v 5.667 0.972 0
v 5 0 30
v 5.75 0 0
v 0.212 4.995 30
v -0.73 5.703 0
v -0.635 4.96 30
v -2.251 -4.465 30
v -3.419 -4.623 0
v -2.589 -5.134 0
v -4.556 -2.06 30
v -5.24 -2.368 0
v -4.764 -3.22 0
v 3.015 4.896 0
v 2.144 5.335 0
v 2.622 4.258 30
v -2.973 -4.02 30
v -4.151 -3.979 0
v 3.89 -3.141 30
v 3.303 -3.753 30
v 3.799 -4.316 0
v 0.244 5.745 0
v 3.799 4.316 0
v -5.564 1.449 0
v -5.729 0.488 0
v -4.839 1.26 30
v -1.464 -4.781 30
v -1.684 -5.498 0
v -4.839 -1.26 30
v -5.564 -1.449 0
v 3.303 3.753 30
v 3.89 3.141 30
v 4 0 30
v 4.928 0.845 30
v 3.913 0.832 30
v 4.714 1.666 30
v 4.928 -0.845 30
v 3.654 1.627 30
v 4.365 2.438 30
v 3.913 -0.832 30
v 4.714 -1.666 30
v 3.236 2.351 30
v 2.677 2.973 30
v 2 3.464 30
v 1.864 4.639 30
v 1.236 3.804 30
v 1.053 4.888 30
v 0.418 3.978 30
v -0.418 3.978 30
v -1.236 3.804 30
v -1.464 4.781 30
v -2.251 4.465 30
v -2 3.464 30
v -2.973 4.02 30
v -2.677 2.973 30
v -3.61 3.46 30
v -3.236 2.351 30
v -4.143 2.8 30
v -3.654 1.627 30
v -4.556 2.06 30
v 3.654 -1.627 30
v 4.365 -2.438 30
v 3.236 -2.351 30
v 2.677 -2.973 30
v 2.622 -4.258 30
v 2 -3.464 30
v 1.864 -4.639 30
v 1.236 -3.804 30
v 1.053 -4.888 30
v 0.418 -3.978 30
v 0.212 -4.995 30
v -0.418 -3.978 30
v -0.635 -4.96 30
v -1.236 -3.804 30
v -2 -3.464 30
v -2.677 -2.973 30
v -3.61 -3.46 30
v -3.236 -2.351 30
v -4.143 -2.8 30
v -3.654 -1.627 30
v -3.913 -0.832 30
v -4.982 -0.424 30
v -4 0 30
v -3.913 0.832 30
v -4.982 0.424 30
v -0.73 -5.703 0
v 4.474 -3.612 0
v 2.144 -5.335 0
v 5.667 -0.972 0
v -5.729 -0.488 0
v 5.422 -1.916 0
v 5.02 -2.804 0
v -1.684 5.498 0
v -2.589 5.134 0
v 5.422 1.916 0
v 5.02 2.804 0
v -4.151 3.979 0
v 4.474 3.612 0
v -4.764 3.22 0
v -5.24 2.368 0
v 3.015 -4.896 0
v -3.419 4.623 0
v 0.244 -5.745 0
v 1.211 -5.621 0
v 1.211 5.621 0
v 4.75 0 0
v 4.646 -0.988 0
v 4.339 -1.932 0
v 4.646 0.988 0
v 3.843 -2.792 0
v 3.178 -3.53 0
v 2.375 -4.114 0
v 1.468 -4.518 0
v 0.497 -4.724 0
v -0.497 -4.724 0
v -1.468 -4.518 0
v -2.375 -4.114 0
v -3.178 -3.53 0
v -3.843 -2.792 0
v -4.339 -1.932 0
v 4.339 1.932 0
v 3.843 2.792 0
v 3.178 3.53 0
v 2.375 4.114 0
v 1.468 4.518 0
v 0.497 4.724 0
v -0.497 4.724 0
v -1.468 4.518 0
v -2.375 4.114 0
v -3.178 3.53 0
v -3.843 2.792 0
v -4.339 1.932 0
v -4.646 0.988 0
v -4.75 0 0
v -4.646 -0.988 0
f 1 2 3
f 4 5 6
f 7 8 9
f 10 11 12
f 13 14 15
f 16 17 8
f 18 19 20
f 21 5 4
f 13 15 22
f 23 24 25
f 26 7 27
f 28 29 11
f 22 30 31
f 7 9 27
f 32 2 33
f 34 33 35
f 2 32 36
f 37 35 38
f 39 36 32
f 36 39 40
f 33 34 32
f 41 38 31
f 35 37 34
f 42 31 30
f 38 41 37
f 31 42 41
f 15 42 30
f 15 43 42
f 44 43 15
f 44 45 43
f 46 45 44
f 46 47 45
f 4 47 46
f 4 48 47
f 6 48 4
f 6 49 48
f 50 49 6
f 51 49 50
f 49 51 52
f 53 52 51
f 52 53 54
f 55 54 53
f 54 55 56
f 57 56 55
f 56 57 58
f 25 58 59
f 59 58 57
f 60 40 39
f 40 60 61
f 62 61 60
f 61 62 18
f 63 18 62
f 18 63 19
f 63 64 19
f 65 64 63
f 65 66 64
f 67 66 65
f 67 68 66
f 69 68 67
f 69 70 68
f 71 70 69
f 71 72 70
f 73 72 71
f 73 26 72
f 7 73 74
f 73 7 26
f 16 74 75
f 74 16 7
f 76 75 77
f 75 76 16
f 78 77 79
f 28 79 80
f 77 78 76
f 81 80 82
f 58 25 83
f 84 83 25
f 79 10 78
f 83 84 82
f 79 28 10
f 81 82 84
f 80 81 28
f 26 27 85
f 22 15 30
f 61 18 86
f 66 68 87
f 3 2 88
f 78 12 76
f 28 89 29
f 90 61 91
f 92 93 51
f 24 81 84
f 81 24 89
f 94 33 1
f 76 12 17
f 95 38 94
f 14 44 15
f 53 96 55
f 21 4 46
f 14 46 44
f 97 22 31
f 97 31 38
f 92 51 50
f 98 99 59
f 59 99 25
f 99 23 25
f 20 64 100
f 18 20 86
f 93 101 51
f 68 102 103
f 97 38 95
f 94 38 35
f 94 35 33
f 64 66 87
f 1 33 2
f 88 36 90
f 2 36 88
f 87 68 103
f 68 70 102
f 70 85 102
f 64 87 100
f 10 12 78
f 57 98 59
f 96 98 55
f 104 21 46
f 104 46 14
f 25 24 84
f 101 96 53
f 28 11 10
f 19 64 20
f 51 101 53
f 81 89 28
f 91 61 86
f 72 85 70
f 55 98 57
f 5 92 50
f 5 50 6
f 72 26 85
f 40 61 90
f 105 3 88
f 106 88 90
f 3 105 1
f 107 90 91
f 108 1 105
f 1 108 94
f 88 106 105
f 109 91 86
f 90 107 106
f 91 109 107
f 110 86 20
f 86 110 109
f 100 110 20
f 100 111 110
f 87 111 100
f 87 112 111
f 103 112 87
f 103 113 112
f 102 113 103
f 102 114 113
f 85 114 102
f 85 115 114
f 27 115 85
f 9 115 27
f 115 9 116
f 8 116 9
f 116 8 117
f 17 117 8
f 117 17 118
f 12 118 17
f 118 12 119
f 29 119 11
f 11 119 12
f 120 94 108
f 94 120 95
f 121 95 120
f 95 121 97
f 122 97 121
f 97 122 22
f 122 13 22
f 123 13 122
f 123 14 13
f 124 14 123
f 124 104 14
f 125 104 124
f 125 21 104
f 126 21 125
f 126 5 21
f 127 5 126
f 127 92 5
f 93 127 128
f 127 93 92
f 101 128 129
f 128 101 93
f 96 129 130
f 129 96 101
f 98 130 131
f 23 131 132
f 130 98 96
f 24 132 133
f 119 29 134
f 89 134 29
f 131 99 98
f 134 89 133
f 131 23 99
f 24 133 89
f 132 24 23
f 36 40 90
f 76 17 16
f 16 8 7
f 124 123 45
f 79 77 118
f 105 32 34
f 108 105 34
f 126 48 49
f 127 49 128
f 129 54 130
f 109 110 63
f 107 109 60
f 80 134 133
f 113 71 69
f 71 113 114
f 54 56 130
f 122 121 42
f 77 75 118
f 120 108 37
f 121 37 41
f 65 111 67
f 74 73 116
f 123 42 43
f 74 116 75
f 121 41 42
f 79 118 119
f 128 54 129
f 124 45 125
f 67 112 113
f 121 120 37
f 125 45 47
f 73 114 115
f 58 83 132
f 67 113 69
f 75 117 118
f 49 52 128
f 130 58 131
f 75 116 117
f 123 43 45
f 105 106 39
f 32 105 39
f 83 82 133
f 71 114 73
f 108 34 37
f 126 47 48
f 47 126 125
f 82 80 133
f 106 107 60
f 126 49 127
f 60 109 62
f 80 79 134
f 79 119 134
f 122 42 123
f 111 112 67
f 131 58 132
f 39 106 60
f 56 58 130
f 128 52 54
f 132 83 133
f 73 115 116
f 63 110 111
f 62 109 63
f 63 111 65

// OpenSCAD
top_d = 8;
bottom_d = 9.5;
neck_l = 30;
tube_t = 1;

$fs = 1;
$fa = 1;
difference(){
  cylinder(d1=bottom_d+2*tube_t, d2=top_d+2*tube_t, h=neck_l);
  cylinder(d1=bottom_d, d2=top_d, h=neck_l);
}
